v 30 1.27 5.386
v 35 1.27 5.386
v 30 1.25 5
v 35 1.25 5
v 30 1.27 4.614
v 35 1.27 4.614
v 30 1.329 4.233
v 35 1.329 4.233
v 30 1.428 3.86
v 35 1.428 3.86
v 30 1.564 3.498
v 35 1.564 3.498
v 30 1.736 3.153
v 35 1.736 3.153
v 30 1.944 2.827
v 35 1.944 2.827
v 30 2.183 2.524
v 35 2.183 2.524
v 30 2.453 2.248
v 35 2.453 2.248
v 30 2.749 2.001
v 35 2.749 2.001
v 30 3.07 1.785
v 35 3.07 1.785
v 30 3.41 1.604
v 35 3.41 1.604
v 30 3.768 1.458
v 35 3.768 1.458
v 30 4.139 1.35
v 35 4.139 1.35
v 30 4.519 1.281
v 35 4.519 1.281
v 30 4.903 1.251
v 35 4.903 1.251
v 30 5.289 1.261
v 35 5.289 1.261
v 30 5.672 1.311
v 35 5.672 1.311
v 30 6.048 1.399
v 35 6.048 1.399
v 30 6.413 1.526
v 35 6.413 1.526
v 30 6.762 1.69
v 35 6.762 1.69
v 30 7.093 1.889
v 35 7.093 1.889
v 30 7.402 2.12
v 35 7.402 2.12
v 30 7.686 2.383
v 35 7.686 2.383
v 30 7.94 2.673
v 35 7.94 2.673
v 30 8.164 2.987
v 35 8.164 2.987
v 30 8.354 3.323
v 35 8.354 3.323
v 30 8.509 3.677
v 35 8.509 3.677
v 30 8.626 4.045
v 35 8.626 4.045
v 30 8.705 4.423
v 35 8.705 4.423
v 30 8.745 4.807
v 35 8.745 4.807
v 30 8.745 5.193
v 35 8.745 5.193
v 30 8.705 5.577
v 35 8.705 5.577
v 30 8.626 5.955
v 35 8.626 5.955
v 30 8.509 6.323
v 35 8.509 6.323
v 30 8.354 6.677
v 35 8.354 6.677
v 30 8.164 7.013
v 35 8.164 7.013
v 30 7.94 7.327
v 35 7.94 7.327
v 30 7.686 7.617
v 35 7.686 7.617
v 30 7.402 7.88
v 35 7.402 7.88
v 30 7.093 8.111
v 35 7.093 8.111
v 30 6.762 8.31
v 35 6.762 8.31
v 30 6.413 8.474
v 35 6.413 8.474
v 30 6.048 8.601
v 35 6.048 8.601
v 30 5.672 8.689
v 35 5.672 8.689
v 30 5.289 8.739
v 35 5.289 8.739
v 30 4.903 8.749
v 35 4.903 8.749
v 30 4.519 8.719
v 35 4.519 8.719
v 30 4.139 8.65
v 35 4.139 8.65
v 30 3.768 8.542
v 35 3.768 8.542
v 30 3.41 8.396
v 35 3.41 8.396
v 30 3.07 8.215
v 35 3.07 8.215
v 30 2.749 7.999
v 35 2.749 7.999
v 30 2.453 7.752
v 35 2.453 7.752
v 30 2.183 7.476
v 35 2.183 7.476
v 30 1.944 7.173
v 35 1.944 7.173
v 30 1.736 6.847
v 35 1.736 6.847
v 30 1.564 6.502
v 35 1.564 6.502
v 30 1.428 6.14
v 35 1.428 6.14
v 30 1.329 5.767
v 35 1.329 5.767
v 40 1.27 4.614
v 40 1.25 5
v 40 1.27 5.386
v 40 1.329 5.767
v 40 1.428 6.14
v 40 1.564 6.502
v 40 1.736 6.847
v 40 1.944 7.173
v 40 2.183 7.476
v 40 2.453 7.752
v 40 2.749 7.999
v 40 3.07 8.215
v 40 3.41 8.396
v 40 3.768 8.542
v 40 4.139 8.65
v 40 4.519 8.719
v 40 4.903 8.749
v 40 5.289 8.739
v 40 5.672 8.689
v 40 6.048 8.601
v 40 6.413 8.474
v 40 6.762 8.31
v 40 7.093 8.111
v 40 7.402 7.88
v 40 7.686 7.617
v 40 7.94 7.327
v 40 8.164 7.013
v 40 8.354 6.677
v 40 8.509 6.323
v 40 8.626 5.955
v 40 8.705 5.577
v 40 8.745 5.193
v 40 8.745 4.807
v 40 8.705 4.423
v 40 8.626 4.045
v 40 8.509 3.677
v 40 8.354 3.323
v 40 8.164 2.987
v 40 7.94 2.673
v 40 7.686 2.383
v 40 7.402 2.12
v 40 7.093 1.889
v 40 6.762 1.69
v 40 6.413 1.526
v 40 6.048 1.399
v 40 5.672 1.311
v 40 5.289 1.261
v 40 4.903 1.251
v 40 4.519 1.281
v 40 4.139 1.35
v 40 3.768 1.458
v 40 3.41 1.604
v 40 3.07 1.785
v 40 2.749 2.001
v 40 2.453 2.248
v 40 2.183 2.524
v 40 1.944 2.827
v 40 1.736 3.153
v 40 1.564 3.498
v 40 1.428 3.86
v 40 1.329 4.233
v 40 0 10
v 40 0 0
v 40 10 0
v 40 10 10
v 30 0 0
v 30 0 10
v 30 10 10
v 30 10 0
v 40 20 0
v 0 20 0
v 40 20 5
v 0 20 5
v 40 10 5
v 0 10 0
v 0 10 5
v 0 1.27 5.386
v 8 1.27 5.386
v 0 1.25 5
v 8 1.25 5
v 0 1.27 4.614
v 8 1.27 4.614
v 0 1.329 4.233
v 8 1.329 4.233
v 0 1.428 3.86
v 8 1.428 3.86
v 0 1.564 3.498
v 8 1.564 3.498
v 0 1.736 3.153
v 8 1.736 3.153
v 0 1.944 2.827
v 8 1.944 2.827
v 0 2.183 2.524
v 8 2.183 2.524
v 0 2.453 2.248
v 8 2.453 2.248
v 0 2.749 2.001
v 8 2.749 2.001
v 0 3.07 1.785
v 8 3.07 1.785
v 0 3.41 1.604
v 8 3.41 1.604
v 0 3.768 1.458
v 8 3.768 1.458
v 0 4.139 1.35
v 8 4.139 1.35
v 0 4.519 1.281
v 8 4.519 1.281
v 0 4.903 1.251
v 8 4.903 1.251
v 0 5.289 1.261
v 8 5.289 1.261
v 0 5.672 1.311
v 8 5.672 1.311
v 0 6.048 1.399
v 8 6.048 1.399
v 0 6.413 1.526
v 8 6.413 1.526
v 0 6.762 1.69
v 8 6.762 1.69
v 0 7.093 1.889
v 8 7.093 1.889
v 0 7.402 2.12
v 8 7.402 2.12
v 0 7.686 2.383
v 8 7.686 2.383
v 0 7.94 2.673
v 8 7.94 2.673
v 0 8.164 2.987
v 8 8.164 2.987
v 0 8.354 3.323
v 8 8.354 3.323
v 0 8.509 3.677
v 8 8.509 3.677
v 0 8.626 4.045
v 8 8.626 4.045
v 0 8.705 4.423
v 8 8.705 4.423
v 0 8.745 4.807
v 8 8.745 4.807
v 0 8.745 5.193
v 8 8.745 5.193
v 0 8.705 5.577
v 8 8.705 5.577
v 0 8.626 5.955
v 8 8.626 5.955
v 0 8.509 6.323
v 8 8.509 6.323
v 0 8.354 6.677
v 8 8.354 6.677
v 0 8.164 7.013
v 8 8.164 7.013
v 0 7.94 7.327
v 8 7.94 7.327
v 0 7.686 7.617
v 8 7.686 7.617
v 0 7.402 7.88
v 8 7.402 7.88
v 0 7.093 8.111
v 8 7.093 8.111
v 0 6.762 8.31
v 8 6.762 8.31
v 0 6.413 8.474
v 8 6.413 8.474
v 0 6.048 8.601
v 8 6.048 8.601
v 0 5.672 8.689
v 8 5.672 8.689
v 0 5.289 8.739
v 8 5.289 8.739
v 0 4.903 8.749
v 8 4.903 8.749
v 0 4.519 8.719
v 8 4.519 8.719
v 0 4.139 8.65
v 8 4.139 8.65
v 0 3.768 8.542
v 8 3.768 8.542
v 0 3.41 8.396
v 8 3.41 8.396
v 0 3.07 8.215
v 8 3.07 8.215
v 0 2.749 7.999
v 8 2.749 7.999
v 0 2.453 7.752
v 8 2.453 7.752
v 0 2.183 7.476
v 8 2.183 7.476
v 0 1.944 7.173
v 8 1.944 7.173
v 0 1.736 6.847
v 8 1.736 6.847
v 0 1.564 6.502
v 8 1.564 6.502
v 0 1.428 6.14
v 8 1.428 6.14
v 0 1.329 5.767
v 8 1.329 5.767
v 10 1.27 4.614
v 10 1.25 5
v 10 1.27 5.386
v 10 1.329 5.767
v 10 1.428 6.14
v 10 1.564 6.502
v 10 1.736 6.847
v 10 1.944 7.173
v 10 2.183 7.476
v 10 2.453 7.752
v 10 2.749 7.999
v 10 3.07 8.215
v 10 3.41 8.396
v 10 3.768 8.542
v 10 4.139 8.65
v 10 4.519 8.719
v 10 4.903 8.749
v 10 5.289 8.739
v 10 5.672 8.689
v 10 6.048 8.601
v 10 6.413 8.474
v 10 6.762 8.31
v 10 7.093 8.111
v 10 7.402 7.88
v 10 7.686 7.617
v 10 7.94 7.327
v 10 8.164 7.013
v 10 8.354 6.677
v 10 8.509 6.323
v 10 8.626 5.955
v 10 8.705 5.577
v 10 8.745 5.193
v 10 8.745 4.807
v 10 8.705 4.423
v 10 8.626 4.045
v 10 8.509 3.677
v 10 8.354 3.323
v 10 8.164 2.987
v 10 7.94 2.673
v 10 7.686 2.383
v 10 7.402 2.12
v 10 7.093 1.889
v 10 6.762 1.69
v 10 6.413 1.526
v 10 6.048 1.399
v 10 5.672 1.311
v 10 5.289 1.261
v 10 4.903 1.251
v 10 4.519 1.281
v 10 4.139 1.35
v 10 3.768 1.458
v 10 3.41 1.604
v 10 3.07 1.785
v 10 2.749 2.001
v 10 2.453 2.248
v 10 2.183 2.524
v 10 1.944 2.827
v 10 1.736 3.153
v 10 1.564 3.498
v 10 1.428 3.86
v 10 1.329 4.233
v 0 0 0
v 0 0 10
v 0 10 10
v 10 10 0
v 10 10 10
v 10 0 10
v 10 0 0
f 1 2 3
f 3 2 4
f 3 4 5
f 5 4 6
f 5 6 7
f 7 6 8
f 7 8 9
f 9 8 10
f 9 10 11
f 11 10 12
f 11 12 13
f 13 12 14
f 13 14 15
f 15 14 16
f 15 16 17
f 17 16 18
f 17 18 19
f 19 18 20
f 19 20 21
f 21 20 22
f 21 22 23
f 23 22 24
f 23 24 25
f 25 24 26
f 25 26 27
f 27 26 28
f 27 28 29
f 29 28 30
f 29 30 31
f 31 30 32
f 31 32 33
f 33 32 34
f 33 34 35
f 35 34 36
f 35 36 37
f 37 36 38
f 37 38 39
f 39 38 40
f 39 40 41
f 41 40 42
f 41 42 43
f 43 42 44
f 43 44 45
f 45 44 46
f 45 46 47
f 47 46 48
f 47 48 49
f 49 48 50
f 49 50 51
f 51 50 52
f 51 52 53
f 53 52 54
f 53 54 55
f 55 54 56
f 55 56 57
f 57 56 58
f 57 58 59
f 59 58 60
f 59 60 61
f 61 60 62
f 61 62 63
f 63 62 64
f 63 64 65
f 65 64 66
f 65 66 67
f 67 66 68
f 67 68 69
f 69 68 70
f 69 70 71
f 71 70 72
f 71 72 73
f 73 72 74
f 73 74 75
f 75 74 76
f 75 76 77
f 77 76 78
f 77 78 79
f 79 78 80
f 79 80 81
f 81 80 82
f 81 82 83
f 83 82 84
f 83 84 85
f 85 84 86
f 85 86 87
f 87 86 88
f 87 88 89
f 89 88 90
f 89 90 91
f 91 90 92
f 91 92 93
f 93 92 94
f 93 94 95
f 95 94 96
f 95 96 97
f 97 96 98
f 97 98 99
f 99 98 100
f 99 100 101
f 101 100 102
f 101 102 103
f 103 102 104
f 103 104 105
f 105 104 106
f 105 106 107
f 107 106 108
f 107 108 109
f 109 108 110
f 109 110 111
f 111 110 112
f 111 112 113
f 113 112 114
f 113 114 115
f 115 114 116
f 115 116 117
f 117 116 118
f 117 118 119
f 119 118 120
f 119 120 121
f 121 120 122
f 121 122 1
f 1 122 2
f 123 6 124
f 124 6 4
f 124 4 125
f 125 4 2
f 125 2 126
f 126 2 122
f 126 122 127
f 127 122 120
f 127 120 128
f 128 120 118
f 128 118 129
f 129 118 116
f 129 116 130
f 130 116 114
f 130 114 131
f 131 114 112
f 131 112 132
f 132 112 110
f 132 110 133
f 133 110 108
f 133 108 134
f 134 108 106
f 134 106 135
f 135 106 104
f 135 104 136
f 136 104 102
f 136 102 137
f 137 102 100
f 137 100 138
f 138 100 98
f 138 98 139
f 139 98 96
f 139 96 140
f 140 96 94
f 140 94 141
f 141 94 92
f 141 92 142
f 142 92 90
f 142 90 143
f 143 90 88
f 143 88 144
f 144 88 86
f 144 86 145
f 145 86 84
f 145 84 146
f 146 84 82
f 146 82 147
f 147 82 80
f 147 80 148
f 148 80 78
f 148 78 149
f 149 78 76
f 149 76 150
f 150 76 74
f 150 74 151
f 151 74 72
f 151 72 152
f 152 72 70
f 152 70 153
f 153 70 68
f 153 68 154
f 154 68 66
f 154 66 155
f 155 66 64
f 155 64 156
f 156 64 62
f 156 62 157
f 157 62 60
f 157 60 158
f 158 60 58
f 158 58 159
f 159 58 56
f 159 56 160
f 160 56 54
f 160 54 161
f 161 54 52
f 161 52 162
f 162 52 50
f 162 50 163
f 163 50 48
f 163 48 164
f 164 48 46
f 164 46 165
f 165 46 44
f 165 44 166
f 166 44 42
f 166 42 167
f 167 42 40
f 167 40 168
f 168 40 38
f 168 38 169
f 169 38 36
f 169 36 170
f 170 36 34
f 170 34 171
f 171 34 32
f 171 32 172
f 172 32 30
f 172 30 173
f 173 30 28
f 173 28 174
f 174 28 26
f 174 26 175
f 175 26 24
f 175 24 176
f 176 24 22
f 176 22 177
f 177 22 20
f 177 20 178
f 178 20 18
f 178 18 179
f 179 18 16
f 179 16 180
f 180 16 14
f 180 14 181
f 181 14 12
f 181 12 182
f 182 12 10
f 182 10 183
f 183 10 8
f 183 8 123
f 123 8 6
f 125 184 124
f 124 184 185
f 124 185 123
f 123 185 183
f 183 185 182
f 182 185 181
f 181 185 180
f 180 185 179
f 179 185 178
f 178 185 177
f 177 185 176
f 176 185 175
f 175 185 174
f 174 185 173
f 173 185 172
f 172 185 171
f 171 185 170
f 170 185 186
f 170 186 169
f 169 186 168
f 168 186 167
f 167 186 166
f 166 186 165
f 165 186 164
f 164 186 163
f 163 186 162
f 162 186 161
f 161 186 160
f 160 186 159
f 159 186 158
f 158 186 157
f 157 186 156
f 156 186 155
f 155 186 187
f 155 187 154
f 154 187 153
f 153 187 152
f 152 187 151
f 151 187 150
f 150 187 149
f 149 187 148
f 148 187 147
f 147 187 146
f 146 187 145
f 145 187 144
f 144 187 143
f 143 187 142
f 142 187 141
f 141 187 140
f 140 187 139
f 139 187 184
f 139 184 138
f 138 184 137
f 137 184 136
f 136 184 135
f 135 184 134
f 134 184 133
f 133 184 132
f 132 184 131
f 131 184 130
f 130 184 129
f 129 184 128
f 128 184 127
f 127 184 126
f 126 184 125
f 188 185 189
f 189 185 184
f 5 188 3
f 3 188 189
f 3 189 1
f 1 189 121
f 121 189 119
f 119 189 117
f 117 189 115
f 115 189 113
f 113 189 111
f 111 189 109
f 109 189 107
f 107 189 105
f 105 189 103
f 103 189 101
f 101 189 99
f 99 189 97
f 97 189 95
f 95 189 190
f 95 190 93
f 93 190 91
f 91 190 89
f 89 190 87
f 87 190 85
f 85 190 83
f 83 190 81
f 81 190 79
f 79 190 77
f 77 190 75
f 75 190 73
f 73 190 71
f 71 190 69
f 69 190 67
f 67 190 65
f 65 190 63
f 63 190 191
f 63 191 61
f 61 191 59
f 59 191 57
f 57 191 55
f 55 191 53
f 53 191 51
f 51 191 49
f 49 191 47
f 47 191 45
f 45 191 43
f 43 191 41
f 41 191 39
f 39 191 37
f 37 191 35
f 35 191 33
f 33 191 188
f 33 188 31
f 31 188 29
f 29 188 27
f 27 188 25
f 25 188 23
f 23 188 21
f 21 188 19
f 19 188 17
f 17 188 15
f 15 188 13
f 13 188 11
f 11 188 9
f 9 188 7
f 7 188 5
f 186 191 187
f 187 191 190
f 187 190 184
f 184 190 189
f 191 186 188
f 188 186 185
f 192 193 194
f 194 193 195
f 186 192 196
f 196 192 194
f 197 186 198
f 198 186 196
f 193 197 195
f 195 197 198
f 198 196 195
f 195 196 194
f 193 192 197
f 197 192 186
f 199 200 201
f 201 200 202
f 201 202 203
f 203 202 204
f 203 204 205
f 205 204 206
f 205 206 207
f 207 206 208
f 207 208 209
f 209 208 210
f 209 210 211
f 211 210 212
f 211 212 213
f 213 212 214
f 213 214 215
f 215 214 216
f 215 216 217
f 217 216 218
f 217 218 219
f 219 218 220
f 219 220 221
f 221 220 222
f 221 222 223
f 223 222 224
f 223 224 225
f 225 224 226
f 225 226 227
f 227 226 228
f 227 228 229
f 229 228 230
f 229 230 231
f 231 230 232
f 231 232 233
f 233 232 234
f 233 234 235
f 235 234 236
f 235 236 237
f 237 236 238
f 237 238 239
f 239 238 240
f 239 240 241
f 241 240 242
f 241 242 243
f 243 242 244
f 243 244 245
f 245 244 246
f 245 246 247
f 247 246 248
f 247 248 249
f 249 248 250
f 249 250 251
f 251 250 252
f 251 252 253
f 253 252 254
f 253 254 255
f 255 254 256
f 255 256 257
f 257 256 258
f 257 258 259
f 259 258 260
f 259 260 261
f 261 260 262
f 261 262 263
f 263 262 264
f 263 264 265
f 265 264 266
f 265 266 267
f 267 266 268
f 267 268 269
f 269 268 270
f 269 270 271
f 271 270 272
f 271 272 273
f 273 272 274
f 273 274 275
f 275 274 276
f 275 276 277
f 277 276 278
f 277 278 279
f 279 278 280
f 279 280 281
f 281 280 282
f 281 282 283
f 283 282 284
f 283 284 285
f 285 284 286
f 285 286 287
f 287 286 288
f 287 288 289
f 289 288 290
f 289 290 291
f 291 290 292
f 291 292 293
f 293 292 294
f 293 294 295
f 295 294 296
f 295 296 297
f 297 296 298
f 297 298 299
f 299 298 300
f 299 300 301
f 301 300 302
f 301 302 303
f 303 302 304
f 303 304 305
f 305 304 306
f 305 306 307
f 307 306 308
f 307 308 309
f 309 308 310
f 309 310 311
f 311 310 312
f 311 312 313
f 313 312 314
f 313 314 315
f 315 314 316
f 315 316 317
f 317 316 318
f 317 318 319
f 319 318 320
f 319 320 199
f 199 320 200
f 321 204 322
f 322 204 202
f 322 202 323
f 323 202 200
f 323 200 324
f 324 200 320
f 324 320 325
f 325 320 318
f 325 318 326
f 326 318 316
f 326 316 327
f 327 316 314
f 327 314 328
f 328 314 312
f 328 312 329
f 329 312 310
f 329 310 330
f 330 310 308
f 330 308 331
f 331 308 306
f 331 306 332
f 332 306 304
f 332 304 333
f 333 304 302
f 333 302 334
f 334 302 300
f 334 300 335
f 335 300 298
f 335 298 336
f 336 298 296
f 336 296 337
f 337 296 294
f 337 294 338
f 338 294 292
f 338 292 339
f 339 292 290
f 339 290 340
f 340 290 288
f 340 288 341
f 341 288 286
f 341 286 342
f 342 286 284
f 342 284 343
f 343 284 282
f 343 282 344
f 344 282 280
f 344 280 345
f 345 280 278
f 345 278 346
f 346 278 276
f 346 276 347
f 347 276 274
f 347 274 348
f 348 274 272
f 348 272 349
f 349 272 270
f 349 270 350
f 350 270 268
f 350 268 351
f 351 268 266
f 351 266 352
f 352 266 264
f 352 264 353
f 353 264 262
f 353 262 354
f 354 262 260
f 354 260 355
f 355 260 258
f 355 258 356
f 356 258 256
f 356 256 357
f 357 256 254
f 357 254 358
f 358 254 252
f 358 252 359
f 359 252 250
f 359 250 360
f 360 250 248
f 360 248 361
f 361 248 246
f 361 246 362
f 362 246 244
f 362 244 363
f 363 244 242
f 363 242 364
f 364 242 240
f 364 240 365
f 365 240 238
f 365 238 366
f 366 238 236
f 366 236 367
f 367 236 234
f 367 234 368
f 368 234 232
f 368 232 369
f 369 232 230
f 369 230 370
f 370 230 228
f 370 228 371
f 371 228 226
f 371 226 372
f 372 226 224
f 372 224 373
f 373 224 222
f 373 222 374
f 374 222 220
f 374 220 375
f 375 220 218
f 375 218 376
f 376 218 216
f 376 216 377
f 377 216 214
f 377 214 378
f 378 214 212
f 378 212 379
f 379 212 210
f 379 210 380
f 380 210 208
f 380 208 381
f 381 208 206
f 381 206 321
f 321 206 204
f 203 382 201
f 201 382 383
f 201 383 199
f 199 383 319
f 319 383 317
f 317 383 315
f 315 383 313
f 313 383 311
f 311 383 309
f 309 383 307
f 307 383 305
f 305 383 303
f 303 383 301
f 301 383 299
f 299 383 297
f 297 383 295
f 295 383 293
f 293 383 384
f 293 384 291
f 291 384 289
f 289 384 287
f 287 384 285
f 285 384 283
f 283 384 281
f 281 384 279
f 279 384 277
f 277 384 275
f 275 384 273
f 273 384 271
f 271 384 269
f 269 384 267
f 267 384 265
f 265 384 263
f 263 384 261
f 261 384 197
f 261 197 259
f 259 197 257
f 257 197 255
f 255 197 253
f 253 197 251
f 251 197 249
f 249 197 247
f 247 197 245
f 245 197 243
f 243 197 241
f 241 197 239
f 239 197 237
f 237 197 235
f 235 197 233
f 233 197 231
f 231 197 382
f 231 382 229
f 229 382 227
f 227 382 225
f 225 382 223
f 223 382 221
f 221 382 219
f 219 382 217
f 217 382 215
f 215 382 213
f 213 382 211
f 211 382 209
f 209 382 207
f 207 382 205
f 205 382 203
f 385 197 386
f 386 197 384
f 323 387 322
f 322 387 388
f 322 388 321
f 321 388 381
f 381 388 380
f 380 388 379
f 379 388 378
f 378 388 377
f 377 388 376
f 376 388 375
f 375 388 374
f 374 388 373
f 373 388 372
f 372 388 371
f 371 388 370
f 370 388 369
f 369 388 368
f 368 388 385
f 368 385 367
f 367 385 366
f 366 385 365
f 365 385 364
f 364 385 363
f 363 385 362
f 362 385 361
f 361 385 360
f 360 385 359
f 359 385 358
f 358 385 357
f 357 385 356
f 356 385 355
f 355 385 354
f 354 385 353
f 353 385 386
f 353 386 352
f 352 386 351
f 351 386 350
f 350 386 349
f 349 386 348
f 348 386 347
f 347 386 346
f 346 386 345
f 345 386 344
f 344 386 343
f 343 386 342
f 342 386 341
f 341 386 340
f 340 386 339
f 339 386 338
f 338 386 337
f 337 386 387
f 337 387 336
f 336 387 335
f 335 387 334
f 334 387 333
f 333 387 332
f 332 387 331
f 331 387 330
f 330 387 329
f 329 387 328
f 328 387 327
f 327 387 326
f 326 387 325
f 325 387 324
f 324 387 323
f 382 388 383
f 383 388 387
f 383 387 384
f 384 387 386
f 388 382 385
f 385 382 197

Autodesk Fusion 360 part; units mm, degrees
sketch "Sketch1" plane through (0, 0, 0) normal (0, 0, 1) x (1, 0, 0)
  line L0 (0, 0) -> (10, 0)
  line L1 (10, 0) -> (10, 10)
  line L2 (10, 10) -> (0, 10)
  line L3 (0, 10) -> (0, 0)
  line L4 (0, 10) -> (40, 10)
  line L5 (40, 10) -> (40, 20)
  line L6 (40, 20) -> (0, 20)
  line L7 (0, 20) -> (0, 10)
  line L8 (40, 0) -> (30, 0)
  line L9 (30, 0) -> (30, 10)
  line L10 (30, 10) -> (40, 10)
  line L11 (40, 10) -> (40, 0)
  dimension "d6" = 10
  dimension "d7" = 10
  dimension "d8" = 40
  dimension "d9" = 10
  dimension "d14" = 10
  dimension "d15" = 10
extrude "Extrude3" add sketch "Sketch1" along normal blind 10 contours L4 L8 L9 L10 L11 makes body 1
extrude "Extrude2" add sketch "Sketch1" along normal blind 5 separate body contours L2 L4 L5 L6 L7 L10 makes body 2
extrude "Extrude1" add sketch "Sketch1" along normal blind 10 separate body contours L0 L1 L2 L3 L4 makes body 3
sketch "Sketch2" plane through (40, 0, 0) normal (1, 0, 0) x (0, 1, 0)
  line L0 (0, 0) -> (10, 0)
  line L1 (10, 0) -> (10, 10)
  line L2 (10, 10) -> (0, 10)
  line L3 (0, 10) -> (0, 0)
  circle A0 centre (5, 5) radius 3.75
  dimension "d18" = 7.5
  dimension "d19" = 5
  dimension "d20" = 5
extrude "Extrude4" cut sketch "Sketch2" against normal blind 140 contours A0 bodies 1 3
equation "side = 10 mm"
equation "base_length = 40 mm"
equation "base_width = 10 mm"
equation "base_height = 5 mm"
equation "dowel_pin_hole_radius = ( 3 * side / 4 ) / 2"
equation "d6 = side"
equation "d7 = side"
equation "d8 = base_length"
equation "d9 = base_width"
equation "d10 = side"
equation "d12 = base_height"
equation "d14 = side"
equation "d15 = side"
equation "d16 = side"
equation "d18 = dowel_pin_hole_radius * 2"
equation "d19 = side / 2"
equation "d20 = side / 2"
equation "d21 = -( base_length + extra )"
equation "extra = 100 mm"
